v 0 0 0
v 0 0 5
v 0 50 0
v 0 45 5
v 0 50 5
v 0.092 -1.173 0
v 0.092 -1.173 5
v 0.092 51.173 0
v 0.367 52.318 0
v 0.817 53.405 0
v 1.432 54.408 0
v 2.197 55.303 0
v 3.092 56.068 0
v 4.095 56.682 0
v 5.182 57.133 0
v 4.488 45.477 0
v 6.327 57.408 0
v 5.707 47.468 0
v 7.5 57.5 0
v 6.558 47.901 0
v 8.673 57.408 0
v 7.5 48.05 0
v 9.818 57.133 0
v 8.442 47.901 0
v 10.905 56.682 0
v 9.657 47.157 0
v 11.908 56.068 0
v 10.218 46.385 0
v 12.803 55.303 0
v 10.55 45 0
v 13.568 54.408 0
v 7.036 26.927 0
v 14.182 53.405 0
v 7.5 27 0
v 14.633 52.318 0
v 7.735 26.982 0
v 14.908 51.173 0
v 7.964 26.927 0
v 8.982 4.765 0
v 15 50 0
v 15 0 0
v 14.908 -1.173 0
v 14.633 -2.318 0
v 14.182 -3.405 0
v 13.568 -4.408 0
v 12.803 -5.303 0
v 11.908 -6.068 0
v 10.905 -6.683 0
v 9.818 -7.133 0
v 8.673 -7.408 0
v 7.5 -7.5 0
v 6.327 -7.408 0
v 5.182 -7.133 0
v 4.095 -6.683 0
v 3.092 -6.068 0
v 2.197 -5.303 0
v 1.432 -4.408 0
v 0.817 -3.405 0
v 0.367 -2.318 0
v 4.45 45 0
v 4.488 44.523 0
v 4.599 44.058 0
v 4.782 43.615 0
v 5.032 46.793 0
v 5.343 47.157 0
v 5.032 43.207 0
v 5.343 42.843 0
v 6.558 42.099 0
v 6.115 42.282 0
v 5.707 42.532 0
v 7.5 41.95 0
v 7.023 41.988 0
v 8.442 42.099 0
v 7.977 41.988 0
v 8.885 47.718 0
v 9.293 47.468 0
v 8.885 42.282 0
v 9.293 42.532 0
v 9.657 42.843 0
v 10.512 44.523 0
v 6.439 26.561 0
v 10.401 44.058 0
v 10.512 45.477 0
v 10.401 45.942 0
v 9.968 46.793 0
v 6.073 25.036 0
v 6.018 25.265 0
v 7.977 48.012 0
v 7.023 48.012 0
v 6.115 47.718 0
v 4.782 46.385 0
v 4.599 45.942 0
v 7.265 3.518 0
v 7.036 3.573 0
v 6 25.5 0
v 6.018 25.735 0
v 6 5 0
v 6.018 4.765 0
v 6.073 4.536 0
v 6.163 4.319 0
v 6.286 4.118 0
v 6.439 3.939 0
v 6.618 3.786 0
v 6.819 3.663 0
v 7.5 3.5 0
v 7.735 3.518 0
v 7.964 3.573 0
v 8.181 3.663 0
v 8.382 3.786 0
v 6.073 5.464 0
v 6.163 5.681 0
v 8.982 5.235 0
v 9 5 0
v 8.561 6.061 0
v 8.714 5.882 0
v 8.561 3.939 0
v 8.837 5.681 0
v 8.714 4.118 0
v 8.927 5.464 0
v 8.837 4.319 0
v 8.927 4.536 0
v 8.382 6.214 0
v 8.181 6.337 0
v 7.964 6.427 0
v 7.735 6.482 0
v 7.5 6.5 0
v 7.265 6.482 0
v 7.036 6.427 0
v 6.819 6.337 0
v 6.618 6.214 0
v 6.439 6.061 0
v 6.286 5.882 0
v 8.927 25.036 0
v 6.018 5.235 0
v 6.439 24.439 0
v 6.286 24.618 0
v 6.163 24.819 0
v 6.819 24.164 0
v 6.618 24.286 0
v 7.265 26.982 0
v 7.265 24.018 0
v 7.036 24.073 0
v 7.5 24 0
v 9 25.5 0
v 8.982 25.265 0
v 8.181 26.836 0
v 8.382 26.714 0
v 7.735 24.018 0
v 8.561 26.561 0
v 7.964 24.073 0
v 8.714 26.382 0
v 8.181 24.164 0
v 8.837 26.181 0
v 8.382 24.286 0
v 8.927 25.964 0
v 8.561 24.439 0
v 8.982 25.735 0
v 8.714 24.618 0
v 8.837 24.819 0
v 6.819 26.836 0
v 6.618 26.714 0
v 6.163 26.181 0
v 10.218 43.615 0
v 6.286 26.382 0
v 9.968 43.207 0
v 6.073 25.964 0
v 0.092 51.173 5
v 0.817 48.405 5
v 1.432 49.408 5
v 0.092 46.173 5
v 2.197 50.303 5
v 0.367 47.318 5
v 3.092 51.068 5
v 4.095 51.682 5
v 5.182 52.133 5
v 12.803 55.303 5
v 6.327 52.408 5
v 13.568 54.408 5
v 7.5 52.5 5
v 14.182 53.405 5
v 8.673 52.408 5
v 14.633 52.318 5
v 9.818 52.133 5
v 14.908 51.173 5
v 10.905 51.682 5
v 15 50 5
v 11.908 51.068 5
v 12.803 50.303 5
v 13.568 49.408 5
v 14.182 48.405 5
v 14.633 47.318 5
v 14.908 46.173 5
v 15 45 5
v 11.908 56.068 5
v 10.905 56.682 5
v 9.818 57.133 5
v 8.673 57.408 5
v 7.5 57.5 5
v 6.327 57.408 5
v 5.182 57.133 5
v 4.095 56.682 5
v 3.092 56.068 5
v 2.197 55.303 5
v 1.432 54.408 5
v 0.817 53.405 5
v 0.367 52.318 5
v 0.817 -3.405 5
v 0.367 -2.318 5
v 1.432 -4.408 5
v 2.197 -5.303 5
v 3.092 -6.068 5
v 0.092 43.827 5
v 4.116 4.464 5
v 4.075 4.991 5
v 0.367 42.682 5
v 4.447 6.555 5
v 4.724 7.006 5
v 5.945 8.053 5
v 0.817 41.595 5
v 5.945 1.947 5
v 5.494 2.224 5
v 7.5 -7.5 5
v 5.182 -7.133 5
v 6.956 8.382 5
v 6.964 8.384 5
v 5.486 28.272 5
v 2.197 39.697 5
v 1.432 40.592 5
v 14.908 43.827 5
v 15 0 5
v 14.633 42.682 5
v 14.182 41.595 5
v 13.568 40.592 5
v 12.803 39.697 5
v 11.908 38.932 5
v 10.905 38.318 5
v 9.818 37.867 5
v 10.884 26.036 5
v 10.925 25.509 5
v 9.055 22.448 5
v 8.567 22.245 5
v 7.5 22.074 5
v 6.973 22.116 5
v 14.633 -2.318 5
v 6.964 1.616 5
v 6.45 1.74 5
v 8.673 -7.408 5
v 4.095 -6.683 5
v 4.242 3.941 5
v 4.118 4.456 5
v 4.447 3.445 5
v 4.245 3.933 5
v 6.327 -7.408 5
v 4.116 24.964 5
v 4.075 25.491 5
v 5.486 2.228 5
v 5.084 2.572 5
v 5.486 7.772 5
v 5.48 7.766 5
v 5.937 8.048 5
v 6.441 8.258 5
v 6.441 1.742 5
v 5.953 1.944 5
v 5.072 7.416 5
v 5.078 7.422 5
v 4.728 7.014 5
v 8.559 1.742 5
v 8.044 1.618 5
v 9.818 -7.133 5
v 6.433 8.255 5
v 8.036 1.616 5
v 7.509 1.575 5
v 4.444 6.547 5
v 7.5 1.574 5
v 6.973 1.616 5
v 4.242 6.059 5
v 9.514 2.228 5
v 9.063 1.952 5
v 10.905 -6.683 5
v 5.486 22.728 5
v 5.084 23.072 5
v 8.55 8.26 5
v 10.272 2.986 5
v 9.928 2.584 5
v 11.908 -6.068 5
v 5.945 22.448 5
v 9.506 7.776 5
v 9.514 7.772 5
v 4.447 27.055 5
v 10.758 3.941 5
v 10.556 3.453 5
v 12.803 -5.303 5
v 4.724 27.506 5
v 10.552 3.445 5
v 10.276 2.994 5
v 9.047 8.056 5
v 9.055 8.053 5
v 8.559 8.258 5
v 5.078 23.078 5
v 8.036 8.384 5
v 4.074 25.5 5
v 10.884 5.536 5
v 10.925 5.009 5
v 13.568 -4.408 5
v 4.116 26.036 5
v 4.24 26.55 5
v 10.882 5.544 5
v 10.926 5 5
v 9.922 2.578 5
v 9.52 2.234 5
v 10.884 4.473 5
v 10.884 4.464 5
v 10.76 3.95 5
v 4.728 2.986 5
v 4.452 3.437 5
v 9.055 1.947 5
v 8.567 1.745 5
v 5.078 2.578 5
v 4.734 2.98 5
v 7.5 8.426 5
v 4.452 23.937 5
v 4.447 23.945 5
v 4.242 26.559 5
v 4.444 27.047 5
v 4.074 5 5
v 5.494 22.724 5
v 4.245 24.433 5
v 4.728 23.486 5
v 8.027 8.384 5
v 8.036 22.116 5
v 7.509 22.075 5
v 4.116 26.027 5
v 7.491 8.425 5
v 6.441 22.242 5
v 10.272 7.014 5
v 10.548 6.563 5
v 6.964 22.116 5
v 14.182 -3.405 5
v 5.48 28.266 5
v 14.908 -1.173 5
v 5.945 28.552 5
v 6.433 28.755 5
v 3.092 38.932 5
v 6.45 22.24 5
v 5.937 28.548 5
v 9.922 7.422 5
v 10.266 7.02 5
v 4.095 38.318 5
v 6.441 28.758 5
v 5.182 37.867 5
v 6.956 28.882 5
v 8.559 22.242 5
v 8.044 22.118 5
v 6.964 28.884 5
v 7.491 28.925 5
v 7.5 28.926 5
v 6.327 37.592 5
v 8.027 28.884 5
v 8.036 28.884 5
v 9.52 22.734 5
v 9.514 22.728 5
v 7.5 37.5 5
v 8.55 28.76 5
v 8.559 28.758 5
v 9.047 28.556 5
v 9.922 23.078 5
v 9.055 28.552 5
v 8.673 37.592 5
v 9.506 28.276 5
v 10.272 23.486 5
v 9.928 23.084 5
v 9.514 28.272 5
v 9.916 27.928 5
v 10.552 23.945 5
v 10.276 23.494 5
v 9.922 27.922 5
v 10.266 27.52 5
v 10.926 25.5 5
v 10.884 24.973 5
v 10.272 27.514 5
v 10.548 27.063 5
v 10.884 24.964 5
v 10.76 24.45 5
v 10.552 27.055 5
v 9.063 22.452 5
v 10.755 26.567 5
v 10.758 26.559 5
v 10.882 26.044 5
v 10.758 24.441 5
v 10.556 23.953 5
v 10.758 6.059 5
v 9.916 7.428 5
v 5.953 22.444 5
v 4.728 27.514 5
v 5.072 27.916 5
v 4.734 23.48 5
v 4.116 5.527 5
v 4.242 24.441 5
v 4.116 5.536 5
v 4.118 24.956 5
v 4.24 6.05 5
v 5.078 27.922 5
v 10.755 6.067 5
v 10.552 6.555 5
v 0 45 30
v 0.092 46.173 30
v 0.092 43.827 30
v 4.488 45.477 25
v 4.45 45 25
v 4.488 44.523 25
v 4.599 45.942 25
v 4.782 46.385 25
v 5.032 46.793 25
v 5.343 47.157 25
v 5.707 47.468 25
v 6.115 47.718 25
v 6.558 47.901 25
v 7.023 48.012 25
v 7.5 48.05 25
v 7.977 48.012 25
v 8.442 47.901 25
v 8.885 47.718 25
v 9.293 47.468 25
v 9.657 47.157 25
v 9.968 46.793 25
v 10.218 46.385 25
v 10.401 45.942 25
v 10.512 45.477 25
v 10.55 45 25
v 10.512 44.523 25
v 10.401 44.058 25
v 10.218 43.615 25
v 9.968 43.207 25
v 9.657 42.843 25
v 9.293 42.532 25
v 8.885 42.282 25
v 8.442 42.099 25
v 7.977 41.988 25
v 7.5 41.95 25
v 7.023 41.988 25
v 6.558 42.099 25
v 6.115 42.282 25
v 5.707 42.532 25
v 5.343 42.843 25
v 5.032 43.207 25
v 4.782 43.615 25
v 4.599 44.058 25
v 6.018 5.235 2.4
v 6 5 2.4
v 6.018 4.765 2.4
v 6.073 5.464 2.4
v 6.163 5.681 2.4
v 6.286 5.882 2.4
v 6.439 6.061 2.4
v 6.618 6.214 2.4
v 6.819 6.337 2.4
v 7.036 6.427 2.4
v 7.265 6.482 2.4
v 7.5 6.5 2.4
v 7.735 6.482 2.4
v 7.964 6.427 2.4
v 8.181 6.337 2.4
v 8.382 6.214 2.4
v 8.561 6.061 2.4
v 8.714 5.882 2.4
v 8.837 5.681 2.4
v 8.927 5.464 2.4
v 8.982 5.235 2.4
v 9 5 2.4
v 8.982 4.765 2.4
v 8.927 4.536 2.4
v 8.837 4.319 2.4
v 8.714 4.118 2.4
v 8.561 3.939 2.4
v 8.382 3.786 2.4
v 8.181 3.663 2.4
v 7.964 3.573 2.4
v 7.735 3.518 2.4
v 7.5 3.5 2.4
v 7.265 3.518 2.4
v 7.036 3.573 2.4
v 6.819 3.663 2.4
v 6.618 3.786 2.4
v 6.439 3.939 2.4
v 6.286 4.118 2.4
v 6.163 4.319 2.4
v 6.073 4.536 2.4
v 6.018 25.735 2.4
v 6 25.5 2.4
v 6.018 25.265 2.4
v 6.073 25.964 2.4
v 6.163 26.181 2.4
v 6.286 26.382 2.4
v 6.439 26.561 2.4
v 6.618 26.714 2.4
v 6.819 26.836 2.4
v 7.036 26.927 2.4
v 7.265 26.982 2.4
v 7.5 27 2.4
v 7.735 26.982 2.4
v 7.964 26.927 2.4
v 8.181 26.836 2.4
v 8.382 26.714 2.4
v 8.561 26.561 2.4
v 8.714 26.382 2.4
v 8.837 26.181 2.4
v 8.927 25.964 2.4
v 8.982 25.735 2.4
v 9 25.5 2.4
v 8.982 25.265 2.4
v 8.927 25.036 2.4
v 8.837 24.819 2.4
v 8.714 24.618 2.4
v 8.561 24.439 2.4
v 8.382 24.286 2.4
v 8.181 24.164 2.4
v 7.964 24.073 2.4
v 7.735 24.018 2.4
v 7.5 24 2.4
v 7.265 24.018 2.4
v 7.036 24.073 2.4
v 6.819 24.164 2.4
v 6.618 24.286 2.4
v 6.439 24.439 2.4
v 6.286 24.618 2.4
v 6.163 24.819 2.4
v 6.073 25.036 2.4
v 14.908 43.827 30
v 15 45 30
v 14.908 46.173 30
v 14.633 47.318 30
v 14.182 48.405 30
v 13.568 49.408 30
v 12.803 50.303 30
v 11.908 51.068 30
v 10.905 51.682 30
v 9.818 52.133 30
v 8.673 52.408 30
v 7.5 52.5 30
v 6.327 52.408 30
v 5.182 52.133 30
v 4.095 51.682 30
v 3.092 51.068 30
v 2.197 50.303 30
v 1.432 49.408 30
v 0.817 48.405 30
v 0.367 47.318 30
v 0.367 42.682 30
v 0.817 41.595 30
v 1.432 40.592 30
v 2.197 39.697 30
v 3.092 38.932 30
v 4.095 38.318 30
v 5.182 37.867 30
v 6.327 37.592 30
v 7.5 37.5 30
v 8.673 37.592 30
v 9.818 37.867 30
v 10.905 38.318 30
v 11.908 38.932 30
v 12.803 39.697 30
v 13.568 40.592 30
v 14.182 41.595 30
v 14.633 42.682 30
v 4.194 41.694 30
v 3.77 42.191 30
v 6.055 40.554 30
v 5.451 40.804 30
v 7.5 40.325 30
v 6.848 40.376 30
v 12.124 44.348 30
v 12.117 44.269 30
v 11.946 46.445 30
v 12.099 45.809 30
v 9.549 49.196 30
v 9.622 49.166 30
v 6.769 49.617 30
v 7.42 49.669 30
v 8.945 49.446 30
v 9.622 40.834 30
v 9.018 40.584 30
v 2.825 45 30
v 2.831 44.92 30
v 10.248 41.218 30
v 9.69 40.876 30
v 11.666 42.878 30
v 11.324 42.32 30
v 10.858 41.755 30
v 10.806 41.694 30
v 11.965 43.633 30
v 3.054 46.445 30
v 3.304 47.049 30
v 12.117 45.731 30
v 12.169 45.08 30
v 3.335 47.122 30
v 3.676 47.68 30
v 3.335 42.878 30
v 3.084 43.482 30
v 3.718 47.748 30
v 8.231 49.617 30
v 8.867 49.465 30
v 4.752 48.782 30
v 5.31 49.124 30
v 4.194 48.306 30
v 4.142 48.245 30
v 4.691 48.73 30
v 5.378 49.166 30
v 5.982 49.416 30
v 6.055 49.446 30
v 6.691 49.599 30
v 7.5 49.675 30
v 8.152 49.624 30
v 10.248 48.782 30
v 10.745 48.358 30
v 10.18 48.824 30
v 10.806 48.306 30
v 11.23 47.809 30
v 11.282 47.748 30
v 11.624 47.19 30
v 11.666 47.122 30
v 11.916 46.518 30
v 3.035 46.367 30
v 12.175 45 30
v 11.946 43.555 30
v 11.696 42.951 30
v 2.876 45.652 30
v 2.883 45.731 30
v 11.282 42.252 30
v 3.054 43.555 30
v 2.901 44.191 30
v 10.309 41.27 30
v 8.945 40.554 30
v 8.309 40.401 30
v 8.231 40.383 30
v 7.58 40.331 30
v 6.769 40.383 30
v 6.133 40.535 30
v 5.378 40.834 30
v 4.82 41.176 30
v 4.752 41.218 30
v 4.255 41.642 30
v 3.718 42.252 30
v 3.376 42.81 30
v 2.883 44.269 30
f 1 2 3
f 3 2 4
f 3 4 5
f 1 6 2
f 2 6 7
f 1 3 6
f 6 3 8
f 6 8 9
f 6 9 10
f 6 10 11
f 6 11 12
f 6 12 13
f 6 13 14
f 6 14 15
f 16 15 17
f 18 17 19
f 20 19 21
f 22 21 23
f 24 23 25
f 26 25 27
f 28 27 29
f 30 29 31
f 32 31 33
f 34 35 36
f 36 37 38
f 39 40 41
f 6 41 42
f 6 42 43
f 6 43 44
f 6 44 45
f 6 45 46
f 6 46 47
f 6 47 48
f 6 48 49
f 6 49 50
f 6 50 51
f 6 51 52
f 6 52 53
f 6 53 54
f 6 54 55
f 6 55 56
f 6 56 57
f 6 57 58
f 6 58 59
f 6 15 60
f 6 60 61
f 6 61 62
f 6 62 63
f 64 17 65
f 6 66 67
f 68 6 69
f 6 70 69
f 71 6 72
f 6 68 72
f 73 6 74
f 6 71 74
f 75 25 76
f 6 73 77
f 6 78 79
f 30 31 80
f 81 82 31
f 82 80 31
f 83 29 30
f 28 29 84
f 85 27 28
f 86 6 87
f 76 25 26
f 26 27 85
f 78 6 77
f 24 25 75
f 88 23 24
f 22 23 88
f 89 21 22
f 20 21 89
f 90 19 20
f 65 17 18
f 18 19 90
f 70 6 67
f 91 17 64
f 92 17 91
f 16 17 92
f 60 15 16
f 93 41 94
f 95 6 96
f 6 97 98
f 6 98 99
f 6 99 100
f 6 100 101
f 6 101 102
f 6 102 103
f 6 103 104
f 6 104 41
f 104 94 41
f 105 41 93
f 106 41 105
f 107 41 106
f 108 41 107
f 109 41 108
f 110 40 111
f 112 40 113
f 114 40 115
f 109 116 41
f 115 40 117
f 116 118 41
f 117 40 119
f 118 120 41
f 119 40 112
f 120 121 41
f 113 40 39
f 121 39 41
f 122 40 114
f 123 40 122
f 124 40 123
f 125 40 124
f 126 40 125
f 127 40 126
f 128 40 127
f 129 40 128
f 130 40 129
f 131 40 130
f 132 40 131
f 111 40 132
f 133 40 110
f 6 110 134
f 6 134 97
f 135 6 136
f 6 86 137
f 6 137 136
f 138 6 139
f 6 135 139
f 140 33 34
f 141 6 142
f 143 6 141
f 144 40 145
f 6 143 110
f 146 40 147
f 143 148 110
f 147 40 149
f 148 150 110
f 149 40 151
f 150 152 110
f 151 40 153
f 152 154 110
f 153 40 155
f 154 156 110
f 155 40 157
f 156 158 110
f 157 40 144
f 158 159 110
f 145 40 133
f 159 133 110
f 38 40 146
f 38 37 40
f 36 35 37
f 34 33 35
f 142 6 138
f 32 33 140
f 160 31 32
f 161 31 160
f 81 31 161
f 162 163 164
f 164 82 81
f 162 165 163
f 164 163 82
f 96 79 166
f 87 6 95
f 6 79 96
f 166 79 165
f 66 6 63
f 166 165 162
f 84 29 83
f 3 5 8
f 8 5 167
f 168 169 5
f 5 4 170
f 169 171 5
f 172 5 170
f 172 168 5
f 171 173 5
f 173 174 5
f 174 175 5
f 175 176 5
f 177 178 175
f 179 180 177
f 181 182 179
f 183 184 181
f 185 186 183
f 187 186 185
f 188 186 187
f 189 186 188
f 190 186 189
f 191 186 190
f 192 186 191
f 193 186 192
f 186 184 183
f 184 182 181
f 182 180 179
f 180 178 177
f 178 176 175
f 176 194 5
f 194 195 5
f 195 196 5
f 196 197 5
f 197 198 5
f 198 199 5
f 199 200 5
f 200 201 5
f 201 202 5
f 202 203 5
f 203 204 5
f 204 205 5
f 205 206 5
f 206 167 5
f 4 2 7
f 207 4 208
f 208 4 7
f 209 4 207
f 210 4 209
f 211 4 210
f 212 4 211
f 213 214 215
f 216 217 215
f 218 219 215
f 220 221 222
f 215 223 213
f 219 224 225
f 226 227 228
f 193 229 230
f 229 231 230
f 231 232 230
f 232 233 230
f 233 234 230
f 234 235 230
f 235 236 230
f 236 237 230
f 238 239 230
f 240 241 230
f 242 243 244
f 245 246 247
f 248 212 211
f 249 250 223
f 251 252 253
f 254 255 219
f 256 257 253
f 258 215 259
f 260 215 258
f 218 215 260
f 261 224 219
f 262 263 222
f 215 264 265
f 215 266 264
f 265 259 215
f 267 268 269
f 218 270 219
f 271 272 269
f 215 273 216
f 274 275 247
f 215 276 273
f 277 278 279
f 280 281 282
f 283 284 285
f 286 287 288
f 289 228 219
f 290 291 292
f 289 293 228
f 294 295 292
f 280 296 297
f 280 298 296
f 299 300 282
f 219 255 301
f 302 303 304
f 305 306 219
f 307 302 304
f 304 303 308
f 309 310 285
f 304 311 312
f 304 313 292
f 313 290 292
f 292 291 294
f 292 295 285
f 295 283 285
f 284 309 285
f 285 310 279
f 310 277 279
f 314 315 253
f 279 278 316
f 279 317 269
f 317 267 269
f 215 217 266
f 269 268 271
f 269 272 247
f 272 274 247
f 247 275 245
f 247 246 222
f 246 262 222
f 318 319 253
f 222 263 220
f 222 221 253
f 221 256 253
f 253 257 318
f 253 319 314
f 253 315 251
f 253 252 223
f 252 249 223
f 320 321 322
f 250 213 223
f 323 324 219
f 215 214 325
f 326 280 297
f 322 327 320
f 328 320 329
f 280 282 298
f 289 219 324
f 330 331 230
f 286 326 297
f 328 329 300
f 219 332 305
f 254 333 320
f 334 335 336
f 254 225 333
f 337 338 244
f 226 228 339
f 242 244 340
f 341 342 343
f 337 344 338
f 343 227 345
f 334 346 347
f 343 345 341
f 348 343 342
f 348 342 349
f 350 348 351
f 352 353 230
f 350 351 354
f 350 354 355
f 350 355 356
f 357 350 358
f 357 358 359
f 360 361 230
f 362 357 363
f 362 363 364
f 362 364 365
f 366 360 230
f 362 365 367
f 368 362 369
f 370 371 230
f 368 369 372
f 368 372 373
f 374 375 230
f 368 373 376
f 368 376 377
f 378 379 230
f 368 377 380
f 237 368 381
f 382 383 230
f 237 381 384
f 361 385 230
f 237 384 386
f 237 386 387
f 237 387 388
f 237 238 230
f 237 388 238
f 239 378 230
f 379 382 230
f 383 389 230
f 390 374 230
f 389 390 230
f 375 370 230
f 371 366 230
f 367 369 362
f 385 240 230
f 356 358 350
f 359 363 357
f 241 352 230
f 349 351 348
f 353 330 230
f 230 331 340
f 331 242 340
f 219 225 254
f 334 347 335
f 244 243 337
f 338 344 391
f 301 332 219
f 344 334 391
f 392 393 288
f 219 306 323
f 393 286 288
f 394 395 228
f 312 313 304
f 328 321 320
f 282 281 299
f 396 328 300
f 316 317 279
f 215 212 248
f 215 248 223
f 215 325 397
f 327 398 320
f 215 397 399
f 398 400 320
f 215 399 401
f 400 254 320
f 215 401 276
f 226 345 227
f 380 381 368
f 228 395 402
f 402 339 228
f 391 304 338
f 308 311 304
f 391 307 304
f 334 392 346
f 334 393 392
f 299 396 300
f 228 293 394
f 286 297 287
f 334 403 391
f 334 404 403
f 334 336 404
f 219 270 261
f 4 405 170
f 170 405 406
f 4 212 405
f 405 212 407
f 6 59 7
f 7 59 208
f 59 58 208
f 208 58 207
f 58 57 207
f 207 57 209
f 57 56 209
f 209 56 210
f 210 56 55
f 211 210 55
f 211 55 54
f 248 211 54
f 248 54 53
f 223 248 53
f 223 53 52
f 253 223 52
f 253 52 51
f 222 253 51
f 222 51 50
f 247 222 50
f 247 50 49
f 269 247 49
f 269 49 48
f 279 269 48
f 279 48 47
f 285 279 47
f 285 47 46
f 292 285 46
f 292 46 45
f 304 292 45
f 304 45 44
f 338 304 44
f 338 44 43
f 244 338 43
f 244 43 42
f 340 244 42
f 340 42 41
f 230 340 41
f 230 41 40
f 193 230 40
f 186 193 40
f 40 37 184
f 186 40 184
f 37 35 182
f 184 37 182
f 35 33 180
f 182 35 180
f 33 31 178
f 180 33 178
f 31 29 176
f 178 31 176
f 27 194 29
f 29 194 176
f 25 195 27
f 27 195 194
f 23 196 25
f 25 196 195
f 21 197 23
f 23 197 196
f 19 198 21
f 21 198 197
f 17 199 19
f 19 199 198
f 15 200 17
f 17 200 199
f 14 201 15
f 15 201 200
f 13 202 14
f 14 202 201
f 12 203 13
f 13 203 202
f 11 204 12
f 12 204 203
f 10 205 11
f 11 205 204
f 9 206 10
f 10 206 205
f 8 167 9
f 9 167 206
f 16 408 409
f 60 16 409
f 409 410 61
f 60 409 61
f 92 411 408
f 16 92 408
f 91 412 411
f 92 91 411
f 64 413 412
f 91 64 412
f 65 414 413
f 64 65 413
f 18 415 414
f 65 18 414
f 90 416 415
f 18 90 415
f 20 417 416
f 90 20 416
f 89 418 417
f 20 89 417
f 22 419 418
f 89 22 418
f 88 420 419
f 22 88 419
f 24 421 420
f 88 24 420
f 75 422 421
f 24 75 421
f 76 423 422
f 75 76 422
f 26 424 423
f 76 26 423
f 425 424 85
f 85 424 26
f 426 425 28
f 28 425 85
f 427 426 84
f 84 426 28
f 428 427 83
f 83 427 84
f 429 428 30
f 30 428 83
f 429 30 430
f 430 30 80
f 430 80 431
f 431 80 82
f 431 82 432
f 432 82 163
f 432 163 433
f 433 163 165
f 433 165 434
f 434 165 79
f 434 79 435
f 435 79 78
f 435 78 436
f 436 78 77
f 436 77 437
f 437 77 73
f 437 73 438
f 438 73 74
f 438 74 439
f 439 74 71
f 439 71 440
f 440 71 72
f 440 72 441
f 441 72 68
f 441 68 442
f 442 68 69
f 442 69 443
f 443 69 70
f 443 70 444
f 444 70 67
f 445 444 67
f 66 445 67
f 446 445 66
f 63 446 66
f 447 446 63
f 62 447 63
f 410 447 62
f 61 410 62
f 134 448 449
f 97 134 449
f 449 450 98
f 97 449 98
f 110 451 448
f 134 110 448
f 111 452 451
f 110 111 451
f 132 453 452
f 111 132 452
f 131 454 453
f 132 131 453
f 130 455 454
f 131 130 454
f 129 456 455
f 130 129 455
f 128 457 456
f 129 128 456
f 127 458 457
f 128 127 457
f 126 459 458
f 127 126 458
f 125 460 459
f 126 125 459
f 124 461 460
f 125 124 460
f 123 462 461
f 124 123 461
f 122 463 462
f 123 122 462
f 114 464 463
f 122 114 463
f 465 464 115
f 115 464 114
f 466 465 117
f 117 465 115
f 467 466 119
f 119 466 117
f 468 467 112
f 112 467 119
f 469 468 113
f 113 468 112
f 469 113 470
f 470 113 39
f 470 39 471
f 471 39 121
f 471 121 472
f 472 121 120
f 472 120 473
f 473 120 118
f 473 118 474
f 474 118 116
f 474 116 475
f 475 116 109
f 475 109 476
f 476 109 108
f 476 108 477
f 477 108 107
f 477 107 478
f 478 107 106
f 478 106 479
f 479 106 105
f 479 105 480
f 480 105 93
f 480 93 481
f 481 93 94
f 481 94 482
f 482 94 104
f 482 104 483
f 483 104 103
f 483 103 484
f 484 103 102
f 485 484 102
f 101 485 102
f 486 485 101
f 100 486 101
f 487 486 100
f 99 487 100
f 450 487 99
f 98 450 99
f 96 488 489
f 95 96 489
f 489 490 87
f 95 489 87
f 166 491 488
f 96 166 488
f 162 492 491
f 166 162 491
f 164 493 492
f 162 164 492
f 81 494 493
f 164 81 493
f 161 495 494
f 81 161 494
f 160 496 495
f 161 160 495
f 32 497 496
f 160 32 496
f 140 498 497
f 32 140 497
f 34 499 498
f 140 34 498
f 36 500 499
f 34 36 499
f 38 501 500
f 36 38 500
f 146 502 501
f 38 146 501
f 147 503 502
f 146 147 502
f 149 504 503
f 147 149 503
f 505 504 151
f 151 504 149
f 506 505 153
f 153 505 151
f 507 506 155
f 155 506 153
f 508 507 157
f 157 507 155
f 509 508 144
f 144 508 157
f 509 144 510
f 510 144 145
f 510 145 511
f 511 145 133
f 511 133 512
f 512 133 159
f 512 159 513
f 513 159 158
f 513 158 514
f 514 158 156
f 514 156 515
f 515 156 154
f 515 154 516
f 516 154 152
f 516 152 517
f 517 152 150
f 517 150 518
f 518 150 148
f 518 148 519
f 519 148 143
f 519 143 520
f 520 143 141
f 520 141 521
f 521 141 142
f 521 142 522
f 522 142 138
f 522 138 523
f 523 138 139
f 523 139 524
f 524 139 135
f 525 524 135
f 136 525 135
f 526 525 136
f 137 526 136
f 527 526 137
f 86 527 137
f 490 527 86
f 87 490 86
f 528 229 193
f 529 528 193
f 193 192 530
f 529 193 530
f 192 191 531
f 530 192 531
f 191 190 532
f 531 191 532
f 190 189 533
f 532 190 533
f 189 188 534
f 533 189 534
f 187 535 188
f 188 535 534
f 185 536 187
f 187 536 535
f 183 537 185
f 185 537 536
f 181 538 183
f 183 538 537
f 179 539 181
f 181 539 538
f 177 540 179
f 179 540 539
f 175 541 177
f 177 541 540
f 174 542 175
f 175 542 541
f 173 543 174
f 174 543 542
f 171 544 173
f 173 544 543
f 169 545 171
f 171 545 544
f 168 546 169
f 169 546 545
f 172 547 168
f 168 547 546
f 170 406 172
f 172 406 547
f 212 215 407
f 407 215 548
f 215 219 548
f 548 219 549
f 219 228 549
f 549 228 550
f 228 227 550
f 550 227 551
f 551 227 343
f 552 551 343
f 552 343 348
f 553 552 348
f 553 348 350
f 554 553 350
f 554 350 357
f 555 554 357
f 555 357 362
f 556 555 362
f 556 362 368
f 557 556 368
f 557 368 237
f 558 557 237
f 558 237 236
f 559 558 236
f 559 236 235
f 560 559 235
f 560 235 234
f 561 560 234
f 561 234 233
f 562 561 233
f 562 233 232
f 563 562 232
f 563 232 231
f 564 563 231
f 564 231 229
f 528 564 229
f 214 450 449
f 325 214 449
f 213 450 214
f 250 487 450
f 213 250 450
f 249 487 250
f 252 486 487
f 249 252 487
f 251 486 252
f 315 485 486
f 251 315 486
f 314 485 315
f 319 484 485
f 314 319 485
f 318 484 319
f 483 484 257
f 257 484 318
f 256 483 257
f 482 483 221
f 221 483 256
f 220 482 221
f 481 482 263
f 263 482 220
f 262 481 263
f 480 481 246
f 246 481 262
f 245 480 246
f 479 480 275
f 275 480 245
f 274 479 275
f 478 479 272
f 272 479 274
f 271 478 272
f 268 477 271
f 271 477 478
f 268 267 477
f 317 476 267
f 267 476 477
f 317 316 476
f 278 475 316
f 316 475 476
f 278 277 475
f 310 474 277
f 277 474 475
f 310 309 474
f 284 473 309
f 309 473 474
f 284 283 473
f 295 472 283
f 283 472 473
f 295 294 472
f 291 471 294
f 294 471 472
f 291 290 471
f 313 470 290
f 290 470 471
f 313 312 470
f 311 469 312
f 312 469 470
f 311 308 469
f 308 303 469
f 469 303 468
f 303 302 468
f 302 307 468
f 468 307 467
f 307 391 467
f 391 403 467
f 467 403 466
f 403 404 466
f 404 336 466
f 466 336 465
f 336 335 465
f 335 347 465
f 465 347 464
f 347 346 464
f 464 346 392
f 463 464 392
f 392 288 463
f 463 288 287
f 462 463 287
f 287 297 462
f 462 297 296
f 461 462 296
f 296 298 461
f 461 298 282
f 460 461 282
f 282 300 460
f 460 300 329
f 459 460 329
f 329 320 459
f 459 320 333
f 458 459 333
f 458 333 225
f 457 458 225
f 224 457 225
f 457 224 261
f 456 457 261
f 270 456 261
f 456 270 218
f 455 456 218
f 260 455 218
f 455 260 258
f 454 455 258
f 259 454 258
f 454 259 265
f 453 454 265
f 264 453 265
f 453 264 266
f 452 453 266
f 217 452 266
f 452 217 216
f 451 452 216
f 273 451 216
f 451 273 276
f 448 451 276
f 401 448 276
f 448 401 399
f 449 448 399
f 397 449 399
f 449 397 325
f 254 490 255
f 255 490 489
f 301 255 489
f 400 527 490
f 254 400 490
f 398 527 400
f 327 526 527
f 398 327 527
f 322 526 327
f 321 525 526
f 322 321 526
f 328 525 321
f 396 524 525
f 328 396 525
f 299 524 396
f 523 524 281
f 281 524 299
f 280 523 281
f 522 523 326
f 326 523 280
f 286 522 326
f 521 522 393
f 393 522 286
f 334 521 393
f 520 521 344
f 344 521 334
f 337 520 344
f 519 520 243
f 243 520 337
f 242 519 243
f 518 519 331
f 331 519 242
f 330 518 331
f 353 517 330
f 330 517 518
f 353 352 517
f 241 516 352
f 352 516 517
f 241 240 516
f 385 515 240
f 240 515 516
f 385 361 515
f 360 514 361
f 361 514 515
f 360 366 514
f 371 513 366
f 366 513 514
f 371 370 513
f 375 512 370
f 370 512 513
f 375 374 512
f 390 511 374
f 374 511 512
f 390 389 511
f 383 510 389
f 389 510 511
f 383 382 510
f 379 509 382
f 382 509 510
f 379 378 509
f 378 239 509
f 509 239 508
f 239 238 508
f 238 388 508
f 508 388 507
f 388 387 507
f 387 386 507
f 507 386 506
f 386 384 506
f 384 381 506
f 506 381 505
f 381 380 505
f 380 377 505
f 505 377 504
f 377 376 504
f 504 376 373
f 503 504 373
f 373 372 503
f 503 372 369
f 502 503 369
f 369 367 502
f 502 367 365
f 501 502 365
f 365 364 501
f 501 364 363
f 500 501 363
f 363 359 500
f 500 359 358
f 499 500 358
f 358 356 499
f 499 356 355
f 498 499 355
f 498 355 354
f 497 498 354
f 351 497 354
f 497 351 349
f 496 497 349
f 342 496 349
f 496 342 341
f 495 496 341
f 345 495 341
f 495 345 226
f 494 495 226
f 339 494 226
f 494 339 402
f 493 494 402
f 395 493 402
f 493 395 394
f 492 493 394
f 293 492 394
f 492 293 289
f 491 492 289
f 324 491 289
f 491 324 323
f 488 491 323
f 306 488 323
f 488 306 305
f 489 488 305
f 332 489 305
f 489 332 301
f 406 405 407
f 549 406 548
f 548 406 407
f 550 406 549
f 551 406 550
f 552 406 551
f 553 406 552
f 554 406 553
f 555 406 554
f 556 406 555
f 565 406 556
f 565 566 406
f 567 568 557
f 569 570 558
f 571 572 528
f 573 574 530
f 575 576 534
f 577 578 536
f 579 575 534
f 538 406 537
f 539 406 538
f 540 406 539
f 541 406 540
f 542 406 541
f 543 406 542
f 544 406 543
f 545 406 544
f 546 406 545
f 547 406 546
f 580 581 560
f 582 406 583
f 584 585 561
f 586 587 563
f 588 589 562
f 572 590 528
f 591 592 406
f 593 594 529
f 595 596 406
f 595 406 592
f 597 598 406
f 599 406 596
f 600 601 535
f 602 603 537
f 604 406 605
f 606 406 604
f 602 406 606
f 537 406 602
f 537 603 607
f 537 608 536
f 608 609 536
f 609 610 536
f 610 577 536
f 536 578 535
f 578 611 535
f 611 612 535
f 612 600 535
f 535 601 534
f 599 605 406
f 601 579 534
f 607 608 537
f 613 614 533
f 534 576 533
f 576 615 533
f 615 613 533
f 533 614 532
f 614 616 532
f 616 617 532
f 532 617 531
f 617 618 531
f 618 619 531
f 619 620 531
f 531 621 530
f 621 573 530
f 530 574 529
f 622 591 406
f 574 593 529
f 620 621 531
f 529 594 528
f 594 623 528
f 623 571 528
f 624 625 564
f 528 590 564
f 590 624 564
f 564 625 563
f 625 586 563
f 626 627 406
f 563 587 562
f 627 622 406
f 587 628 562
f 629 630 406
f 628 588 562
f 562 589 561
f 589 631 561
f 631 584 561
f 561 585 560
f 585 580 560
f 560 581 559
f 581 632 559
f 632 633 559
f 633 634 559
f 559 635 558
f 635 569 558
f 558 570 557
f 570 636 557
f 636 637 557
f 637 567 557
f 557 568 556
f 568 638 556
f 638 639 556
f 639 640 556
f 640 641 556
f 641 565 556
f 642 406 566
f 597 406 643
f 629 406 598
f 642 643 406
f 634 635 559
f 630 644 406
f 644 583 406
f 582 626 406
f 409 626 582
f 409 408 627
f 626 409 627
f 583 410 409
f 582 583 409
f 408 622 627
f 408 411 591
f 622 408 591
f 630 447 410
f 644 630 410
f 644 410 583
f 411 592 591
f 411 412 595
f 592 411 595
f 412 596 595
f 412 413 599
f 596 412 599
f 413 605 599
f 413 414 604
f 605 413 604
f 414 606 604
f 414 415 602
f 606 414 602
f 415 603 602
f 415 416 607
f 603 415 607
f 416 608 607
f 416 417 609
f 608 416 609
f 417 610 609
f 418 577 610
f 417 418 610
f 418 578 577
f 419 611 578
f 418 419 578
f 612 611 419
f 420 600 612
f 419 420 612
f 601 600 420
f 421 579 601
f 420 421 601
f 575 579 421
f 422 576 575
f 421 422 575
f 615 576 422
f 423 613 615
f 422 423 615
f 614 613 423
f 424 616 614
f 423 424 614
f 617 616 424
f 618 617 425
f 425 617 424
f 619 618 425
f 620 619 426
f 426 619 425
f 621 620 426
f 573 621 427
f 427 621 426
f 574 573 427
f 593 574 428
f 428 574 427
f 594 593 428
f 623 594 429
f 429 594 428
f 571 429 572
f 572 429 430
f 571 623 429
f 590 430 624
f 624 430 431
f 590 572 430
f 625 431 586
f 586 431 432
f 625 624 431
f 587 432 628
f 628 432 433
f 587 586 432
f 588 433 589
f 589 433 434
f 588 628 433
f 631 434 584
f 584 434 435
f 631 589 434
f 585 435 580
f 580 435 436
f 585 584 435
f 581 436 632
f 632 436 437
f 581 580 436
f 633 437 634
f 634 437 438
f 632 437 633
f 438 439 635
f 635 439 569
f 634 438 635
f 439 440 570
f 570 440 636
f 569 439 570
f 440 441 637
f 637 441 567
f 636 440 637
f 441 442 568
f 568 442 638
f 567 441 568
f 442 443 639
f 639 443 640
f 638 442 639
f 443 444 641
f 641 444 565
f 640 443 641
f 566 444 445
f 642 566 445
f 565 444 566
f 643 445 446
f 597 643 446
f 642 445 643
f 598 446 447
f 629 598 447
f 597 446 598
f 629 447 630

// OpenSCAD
$fn = 40;
INTERNAL_DIAMETER = 6.1;
BASE_HEIGHT = 5;
WELL_HEIGHT = 30;

module main() {
    difference() {
        union() {
            cube(size = [15, 50, BASE_HEIGHT]);//, center = true);

            translate([7.5, 50, 0]) {
                cylinder(r = 7.5, h = BASE_HEIGHT);
            }

            translate([7.5, 0, 0]) {
                cylinder(r = 7.5, h = BASE_HEIGHT);
            }
        }

        // Hole
        translate([7.5, 5, -1]) {
            cylinder(r = 1.5, h = 20);
        }

        translate([7.5, 25.5, -1]) {
            cylinder(r = 1.5, h = 20);
        }

        translate([7.5, 5, BASE_HEIGHT - 2.7 + 0.1]) {
            cylinder(r1 = 1.5, r2 = 3.5, h = 2.7);
        }

        translate([7.5, 25.5, BASE_HEIGHT - 2.7 + 0.1]) {
            cylinder(r1 = 1.5, r2 = 3.5, h = 2.7);
        }
    }
}

difference() {

    union() {
        main();
        translate([7.5, 45, 0]) {
            cylinder(r = 7.5, h = WELL_HEIGHT);
        }
    }

    translate([7.5, 45, -1]) {
        cylinder(r = INTERNAL_DIAMETER / 2, h = 100);
    }

    translate([7.5, 45, WELL_HEIGHT - 5]) {
       cylinder(r1 = INTERNAL_DIAMETER / 2, r2 = 5, h = 6);
    }
}
